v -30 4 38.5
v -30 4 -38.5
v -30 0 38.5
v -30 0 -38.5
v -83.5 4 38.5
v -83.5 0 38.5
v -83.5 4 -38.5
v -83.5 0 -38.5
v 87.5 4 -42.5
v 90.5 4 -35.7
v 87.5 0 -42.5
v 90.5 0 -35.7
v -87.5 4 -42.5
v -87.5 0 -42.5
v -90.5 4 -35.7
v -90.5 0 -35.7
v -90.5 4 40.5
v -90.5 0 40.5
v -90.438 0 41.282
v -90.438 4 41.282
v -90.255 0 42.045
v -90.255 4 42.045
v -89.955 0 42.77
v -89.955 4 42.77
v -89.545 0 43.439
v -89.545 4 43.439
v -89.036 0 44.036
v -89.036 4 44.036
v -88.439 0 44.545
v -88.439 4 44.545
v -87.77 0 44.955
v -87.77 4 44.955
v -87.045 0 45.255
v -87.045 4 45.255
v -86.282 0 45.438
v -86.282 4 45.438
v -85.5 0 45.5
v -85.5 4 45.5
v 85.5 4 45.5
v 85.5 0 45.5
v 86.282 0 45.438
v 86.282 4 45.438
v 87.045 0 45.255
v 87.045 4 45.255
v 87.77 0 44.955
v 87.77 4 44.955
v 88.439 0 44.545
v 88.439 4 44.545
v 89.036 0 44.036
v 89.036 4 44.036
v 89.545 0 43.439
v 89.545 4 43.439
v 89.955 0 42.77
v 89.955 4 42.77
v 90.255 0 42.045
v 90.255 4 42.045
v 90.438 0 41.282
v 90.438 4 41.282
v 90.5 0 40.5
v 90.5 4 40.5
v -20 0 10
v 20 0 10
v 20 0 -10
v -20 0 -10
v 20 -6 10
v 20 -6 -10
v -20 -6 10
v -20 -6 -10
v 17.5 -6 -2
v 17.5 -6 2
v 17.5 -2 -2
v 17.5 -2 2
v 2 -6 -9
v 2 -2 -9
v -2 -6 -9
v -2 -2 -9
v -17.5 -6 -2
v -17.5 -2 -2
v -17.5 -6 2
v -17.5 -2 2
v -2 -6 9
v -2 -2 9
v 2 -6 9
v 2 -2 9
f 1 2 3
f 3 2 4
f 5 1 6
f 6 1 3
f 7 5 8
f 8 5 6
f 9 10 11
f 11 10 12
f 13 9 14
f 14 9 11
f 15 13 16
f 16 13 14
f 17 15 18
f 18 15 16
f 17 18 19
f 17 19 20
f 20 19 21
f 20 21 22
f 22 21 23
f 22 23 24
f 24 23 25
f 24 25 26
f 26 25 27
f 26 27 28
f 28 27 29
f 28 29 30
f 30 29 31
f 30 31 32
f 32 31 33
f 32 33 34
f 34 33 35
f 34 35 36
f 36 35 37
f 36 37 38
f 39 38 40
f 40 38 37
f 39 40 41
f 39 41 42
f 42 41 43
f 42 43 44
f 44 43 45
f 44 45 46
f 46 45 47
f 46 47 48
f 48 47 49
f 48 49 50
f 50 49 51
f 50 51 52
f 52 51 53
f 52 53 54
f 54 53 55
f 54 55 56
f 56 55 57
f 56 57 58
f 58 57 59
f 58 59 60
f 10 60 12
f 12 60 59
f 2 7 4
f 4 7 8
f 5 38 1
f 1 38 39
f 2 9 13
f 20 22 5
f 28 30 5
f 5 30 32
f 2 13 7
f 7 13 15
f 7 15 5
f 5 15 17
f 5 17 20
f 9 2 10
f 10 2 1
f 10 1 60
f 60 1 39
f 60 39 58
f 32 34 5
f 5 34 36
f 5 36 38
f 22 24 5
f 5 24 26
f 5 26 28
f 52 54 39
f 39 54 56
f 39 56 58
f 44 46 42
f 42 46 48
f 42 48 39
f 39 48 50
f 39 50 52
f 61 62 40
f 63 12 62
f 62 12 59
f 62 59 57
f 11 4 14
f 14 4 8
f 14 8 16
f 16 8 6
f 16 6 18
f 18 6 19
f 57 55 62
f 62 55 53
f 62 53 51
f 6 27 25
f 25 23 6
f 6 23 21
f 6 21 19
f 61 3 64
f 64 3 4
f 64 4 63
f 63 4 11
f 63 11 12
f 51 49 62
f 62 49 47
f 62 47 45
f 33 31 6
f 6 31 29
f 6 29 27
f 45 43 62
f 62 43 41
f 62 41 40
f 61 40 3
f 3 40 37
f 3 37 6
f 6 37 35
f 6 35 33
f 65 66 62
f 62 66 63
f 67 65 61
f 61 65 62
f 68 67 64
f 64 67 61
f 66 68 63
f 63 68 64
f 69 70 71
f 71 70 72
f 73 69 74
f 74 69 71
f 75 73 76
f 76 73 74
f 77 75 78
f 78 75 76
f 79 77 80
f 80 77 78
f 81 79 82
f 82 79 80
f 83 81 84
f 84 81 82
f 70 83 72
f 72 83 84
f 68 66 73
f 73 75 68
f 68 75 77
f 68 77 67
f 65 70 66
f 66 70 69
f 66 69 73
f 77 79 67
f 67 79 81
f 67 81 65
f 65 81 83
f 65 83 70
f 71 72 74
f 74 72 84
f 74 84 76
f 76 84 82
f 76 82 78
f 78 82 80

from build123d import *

# Parameters (mm, degrees)
SKETCH1_W           = 53.5
SKETCH1_H           = 77
BOSS_EXTRUDE1_DEPTH = 4
SKETCH2_W           = 40
SKETCH2_H           = 20
BOSS_EXTRUDE2_DEPTH = 2
SKETCH3_W           = 40
SKETCH3_H           = 20
BOSS_EXTRUDE3_DEPTH = 4


with BuildPart() as part:
    # Sketch1 → Boss-Extrude1 (new body)
    with BuildSketch(Plane(origin=(0, 0, 0), x_dir=(1, 0, 0), z_dir=(0, 1, 0))):
        with BuildLine():
            Line((-87.5, 42.5), (87.5, 42.5))
            Line((87.5, 42.5), (90.5, 35.7))
            Line((90.5, 35.7), (90.5, -40.5))
            ThreePointArc((90.5, -40.5), (89.035533906, -44.035533906), (85.5, -45.5))
            Line((85.5, -45.5), (-85.5, -45.5))
            ThreePointArc((-85.5, -45.5), (-89.035533906, -44.035533906), (-90.5, -40.5))
            Line((-90.5, -40.5), (-90.5, 35.7))
            Line((-90.5, 35.7), (-87.5, 42.5))
        make_face()
        with Locations((-56.75, 0)):
            Rectangle(SKETCH1_W, SKETCH1_H, mode=Mode.SUBTRACT)
    extrude(amount=BOSS_EXTRUDE1_DEPTH)

    # Sketch2 → Boss-Extrude2 (add)
    with BuildSketch(Plane(origin=(0, 0, 0), x_dir=(1, 0, 0), z_dir=(0, 1, 0))):
        Rectangle(SKETCH2_W, SKETCH2_H)
    extrude(amount=-BOSS_EXTRUDE2_DEPTH)

    # Sketch3 → Boss-Extrude3 (add)
    # profile 1 of 5: a face of its own
    with BuildSketch(Plane(origin=(0, -2, 0), x_dir=(1, 0, 0), z_dir=(0, 1, 0))):
        Rectangle(SKETCH3_W, SKETCH3_H)
        Polygon((-2, 9), (0, 9), (2, 9), (17.5, 9), (17.5, 2), (17.5, 0), (17.5, -2), (17.5, -9), (2, -9), (0, -9), (-2, -9), (-17.5, -9), (-17.5, -2), (-17.5, 0), (-17.5, 2), (-17.5, 9), align=None, mode=Mode.SUBTRACT)
    # profile 2 of 5: a face of its own
    with BuildSketch(Plane(origin=(0, -2, 0), x_dir=(1, 0, 0), z_dir=(0, 1, 0))):
        Polygon((-17.5, 2), (-2, 9), (-17.5, 9), align=None)
    # profile 3 of 5: a face of its own
    with BuildSketch(Plane(origin=(0, -2, 0), x_dir=(1, 0, 0), z_dir=(0, 1, 0))):
        Polygon((-2, -9), (-17.5, -2), (-17.5, -9), align=None)
    # profile 4 of 5: a face of its own
    with BuildSketch(Plane(origin=(0, -2, 0), x_dir=(1, 0, 0), z_dir=(0, 1, 0))):
        Polygon((17.5, -9), (17.5, -2), (2, -9), align=None)
    # profile 5 of 5: a face of its own
    with BuildSketch(Plane(origin=(0, -2, 0), x_dir=(1, 0, 0), z_dir=(0, 1, 0))):
        Polygon((17.5, 9), (2, 9), (17.5, 2), align=None)
    extrude(amount=-BOSS_EXTRUDE3_DEPTH)


solid = part.part
